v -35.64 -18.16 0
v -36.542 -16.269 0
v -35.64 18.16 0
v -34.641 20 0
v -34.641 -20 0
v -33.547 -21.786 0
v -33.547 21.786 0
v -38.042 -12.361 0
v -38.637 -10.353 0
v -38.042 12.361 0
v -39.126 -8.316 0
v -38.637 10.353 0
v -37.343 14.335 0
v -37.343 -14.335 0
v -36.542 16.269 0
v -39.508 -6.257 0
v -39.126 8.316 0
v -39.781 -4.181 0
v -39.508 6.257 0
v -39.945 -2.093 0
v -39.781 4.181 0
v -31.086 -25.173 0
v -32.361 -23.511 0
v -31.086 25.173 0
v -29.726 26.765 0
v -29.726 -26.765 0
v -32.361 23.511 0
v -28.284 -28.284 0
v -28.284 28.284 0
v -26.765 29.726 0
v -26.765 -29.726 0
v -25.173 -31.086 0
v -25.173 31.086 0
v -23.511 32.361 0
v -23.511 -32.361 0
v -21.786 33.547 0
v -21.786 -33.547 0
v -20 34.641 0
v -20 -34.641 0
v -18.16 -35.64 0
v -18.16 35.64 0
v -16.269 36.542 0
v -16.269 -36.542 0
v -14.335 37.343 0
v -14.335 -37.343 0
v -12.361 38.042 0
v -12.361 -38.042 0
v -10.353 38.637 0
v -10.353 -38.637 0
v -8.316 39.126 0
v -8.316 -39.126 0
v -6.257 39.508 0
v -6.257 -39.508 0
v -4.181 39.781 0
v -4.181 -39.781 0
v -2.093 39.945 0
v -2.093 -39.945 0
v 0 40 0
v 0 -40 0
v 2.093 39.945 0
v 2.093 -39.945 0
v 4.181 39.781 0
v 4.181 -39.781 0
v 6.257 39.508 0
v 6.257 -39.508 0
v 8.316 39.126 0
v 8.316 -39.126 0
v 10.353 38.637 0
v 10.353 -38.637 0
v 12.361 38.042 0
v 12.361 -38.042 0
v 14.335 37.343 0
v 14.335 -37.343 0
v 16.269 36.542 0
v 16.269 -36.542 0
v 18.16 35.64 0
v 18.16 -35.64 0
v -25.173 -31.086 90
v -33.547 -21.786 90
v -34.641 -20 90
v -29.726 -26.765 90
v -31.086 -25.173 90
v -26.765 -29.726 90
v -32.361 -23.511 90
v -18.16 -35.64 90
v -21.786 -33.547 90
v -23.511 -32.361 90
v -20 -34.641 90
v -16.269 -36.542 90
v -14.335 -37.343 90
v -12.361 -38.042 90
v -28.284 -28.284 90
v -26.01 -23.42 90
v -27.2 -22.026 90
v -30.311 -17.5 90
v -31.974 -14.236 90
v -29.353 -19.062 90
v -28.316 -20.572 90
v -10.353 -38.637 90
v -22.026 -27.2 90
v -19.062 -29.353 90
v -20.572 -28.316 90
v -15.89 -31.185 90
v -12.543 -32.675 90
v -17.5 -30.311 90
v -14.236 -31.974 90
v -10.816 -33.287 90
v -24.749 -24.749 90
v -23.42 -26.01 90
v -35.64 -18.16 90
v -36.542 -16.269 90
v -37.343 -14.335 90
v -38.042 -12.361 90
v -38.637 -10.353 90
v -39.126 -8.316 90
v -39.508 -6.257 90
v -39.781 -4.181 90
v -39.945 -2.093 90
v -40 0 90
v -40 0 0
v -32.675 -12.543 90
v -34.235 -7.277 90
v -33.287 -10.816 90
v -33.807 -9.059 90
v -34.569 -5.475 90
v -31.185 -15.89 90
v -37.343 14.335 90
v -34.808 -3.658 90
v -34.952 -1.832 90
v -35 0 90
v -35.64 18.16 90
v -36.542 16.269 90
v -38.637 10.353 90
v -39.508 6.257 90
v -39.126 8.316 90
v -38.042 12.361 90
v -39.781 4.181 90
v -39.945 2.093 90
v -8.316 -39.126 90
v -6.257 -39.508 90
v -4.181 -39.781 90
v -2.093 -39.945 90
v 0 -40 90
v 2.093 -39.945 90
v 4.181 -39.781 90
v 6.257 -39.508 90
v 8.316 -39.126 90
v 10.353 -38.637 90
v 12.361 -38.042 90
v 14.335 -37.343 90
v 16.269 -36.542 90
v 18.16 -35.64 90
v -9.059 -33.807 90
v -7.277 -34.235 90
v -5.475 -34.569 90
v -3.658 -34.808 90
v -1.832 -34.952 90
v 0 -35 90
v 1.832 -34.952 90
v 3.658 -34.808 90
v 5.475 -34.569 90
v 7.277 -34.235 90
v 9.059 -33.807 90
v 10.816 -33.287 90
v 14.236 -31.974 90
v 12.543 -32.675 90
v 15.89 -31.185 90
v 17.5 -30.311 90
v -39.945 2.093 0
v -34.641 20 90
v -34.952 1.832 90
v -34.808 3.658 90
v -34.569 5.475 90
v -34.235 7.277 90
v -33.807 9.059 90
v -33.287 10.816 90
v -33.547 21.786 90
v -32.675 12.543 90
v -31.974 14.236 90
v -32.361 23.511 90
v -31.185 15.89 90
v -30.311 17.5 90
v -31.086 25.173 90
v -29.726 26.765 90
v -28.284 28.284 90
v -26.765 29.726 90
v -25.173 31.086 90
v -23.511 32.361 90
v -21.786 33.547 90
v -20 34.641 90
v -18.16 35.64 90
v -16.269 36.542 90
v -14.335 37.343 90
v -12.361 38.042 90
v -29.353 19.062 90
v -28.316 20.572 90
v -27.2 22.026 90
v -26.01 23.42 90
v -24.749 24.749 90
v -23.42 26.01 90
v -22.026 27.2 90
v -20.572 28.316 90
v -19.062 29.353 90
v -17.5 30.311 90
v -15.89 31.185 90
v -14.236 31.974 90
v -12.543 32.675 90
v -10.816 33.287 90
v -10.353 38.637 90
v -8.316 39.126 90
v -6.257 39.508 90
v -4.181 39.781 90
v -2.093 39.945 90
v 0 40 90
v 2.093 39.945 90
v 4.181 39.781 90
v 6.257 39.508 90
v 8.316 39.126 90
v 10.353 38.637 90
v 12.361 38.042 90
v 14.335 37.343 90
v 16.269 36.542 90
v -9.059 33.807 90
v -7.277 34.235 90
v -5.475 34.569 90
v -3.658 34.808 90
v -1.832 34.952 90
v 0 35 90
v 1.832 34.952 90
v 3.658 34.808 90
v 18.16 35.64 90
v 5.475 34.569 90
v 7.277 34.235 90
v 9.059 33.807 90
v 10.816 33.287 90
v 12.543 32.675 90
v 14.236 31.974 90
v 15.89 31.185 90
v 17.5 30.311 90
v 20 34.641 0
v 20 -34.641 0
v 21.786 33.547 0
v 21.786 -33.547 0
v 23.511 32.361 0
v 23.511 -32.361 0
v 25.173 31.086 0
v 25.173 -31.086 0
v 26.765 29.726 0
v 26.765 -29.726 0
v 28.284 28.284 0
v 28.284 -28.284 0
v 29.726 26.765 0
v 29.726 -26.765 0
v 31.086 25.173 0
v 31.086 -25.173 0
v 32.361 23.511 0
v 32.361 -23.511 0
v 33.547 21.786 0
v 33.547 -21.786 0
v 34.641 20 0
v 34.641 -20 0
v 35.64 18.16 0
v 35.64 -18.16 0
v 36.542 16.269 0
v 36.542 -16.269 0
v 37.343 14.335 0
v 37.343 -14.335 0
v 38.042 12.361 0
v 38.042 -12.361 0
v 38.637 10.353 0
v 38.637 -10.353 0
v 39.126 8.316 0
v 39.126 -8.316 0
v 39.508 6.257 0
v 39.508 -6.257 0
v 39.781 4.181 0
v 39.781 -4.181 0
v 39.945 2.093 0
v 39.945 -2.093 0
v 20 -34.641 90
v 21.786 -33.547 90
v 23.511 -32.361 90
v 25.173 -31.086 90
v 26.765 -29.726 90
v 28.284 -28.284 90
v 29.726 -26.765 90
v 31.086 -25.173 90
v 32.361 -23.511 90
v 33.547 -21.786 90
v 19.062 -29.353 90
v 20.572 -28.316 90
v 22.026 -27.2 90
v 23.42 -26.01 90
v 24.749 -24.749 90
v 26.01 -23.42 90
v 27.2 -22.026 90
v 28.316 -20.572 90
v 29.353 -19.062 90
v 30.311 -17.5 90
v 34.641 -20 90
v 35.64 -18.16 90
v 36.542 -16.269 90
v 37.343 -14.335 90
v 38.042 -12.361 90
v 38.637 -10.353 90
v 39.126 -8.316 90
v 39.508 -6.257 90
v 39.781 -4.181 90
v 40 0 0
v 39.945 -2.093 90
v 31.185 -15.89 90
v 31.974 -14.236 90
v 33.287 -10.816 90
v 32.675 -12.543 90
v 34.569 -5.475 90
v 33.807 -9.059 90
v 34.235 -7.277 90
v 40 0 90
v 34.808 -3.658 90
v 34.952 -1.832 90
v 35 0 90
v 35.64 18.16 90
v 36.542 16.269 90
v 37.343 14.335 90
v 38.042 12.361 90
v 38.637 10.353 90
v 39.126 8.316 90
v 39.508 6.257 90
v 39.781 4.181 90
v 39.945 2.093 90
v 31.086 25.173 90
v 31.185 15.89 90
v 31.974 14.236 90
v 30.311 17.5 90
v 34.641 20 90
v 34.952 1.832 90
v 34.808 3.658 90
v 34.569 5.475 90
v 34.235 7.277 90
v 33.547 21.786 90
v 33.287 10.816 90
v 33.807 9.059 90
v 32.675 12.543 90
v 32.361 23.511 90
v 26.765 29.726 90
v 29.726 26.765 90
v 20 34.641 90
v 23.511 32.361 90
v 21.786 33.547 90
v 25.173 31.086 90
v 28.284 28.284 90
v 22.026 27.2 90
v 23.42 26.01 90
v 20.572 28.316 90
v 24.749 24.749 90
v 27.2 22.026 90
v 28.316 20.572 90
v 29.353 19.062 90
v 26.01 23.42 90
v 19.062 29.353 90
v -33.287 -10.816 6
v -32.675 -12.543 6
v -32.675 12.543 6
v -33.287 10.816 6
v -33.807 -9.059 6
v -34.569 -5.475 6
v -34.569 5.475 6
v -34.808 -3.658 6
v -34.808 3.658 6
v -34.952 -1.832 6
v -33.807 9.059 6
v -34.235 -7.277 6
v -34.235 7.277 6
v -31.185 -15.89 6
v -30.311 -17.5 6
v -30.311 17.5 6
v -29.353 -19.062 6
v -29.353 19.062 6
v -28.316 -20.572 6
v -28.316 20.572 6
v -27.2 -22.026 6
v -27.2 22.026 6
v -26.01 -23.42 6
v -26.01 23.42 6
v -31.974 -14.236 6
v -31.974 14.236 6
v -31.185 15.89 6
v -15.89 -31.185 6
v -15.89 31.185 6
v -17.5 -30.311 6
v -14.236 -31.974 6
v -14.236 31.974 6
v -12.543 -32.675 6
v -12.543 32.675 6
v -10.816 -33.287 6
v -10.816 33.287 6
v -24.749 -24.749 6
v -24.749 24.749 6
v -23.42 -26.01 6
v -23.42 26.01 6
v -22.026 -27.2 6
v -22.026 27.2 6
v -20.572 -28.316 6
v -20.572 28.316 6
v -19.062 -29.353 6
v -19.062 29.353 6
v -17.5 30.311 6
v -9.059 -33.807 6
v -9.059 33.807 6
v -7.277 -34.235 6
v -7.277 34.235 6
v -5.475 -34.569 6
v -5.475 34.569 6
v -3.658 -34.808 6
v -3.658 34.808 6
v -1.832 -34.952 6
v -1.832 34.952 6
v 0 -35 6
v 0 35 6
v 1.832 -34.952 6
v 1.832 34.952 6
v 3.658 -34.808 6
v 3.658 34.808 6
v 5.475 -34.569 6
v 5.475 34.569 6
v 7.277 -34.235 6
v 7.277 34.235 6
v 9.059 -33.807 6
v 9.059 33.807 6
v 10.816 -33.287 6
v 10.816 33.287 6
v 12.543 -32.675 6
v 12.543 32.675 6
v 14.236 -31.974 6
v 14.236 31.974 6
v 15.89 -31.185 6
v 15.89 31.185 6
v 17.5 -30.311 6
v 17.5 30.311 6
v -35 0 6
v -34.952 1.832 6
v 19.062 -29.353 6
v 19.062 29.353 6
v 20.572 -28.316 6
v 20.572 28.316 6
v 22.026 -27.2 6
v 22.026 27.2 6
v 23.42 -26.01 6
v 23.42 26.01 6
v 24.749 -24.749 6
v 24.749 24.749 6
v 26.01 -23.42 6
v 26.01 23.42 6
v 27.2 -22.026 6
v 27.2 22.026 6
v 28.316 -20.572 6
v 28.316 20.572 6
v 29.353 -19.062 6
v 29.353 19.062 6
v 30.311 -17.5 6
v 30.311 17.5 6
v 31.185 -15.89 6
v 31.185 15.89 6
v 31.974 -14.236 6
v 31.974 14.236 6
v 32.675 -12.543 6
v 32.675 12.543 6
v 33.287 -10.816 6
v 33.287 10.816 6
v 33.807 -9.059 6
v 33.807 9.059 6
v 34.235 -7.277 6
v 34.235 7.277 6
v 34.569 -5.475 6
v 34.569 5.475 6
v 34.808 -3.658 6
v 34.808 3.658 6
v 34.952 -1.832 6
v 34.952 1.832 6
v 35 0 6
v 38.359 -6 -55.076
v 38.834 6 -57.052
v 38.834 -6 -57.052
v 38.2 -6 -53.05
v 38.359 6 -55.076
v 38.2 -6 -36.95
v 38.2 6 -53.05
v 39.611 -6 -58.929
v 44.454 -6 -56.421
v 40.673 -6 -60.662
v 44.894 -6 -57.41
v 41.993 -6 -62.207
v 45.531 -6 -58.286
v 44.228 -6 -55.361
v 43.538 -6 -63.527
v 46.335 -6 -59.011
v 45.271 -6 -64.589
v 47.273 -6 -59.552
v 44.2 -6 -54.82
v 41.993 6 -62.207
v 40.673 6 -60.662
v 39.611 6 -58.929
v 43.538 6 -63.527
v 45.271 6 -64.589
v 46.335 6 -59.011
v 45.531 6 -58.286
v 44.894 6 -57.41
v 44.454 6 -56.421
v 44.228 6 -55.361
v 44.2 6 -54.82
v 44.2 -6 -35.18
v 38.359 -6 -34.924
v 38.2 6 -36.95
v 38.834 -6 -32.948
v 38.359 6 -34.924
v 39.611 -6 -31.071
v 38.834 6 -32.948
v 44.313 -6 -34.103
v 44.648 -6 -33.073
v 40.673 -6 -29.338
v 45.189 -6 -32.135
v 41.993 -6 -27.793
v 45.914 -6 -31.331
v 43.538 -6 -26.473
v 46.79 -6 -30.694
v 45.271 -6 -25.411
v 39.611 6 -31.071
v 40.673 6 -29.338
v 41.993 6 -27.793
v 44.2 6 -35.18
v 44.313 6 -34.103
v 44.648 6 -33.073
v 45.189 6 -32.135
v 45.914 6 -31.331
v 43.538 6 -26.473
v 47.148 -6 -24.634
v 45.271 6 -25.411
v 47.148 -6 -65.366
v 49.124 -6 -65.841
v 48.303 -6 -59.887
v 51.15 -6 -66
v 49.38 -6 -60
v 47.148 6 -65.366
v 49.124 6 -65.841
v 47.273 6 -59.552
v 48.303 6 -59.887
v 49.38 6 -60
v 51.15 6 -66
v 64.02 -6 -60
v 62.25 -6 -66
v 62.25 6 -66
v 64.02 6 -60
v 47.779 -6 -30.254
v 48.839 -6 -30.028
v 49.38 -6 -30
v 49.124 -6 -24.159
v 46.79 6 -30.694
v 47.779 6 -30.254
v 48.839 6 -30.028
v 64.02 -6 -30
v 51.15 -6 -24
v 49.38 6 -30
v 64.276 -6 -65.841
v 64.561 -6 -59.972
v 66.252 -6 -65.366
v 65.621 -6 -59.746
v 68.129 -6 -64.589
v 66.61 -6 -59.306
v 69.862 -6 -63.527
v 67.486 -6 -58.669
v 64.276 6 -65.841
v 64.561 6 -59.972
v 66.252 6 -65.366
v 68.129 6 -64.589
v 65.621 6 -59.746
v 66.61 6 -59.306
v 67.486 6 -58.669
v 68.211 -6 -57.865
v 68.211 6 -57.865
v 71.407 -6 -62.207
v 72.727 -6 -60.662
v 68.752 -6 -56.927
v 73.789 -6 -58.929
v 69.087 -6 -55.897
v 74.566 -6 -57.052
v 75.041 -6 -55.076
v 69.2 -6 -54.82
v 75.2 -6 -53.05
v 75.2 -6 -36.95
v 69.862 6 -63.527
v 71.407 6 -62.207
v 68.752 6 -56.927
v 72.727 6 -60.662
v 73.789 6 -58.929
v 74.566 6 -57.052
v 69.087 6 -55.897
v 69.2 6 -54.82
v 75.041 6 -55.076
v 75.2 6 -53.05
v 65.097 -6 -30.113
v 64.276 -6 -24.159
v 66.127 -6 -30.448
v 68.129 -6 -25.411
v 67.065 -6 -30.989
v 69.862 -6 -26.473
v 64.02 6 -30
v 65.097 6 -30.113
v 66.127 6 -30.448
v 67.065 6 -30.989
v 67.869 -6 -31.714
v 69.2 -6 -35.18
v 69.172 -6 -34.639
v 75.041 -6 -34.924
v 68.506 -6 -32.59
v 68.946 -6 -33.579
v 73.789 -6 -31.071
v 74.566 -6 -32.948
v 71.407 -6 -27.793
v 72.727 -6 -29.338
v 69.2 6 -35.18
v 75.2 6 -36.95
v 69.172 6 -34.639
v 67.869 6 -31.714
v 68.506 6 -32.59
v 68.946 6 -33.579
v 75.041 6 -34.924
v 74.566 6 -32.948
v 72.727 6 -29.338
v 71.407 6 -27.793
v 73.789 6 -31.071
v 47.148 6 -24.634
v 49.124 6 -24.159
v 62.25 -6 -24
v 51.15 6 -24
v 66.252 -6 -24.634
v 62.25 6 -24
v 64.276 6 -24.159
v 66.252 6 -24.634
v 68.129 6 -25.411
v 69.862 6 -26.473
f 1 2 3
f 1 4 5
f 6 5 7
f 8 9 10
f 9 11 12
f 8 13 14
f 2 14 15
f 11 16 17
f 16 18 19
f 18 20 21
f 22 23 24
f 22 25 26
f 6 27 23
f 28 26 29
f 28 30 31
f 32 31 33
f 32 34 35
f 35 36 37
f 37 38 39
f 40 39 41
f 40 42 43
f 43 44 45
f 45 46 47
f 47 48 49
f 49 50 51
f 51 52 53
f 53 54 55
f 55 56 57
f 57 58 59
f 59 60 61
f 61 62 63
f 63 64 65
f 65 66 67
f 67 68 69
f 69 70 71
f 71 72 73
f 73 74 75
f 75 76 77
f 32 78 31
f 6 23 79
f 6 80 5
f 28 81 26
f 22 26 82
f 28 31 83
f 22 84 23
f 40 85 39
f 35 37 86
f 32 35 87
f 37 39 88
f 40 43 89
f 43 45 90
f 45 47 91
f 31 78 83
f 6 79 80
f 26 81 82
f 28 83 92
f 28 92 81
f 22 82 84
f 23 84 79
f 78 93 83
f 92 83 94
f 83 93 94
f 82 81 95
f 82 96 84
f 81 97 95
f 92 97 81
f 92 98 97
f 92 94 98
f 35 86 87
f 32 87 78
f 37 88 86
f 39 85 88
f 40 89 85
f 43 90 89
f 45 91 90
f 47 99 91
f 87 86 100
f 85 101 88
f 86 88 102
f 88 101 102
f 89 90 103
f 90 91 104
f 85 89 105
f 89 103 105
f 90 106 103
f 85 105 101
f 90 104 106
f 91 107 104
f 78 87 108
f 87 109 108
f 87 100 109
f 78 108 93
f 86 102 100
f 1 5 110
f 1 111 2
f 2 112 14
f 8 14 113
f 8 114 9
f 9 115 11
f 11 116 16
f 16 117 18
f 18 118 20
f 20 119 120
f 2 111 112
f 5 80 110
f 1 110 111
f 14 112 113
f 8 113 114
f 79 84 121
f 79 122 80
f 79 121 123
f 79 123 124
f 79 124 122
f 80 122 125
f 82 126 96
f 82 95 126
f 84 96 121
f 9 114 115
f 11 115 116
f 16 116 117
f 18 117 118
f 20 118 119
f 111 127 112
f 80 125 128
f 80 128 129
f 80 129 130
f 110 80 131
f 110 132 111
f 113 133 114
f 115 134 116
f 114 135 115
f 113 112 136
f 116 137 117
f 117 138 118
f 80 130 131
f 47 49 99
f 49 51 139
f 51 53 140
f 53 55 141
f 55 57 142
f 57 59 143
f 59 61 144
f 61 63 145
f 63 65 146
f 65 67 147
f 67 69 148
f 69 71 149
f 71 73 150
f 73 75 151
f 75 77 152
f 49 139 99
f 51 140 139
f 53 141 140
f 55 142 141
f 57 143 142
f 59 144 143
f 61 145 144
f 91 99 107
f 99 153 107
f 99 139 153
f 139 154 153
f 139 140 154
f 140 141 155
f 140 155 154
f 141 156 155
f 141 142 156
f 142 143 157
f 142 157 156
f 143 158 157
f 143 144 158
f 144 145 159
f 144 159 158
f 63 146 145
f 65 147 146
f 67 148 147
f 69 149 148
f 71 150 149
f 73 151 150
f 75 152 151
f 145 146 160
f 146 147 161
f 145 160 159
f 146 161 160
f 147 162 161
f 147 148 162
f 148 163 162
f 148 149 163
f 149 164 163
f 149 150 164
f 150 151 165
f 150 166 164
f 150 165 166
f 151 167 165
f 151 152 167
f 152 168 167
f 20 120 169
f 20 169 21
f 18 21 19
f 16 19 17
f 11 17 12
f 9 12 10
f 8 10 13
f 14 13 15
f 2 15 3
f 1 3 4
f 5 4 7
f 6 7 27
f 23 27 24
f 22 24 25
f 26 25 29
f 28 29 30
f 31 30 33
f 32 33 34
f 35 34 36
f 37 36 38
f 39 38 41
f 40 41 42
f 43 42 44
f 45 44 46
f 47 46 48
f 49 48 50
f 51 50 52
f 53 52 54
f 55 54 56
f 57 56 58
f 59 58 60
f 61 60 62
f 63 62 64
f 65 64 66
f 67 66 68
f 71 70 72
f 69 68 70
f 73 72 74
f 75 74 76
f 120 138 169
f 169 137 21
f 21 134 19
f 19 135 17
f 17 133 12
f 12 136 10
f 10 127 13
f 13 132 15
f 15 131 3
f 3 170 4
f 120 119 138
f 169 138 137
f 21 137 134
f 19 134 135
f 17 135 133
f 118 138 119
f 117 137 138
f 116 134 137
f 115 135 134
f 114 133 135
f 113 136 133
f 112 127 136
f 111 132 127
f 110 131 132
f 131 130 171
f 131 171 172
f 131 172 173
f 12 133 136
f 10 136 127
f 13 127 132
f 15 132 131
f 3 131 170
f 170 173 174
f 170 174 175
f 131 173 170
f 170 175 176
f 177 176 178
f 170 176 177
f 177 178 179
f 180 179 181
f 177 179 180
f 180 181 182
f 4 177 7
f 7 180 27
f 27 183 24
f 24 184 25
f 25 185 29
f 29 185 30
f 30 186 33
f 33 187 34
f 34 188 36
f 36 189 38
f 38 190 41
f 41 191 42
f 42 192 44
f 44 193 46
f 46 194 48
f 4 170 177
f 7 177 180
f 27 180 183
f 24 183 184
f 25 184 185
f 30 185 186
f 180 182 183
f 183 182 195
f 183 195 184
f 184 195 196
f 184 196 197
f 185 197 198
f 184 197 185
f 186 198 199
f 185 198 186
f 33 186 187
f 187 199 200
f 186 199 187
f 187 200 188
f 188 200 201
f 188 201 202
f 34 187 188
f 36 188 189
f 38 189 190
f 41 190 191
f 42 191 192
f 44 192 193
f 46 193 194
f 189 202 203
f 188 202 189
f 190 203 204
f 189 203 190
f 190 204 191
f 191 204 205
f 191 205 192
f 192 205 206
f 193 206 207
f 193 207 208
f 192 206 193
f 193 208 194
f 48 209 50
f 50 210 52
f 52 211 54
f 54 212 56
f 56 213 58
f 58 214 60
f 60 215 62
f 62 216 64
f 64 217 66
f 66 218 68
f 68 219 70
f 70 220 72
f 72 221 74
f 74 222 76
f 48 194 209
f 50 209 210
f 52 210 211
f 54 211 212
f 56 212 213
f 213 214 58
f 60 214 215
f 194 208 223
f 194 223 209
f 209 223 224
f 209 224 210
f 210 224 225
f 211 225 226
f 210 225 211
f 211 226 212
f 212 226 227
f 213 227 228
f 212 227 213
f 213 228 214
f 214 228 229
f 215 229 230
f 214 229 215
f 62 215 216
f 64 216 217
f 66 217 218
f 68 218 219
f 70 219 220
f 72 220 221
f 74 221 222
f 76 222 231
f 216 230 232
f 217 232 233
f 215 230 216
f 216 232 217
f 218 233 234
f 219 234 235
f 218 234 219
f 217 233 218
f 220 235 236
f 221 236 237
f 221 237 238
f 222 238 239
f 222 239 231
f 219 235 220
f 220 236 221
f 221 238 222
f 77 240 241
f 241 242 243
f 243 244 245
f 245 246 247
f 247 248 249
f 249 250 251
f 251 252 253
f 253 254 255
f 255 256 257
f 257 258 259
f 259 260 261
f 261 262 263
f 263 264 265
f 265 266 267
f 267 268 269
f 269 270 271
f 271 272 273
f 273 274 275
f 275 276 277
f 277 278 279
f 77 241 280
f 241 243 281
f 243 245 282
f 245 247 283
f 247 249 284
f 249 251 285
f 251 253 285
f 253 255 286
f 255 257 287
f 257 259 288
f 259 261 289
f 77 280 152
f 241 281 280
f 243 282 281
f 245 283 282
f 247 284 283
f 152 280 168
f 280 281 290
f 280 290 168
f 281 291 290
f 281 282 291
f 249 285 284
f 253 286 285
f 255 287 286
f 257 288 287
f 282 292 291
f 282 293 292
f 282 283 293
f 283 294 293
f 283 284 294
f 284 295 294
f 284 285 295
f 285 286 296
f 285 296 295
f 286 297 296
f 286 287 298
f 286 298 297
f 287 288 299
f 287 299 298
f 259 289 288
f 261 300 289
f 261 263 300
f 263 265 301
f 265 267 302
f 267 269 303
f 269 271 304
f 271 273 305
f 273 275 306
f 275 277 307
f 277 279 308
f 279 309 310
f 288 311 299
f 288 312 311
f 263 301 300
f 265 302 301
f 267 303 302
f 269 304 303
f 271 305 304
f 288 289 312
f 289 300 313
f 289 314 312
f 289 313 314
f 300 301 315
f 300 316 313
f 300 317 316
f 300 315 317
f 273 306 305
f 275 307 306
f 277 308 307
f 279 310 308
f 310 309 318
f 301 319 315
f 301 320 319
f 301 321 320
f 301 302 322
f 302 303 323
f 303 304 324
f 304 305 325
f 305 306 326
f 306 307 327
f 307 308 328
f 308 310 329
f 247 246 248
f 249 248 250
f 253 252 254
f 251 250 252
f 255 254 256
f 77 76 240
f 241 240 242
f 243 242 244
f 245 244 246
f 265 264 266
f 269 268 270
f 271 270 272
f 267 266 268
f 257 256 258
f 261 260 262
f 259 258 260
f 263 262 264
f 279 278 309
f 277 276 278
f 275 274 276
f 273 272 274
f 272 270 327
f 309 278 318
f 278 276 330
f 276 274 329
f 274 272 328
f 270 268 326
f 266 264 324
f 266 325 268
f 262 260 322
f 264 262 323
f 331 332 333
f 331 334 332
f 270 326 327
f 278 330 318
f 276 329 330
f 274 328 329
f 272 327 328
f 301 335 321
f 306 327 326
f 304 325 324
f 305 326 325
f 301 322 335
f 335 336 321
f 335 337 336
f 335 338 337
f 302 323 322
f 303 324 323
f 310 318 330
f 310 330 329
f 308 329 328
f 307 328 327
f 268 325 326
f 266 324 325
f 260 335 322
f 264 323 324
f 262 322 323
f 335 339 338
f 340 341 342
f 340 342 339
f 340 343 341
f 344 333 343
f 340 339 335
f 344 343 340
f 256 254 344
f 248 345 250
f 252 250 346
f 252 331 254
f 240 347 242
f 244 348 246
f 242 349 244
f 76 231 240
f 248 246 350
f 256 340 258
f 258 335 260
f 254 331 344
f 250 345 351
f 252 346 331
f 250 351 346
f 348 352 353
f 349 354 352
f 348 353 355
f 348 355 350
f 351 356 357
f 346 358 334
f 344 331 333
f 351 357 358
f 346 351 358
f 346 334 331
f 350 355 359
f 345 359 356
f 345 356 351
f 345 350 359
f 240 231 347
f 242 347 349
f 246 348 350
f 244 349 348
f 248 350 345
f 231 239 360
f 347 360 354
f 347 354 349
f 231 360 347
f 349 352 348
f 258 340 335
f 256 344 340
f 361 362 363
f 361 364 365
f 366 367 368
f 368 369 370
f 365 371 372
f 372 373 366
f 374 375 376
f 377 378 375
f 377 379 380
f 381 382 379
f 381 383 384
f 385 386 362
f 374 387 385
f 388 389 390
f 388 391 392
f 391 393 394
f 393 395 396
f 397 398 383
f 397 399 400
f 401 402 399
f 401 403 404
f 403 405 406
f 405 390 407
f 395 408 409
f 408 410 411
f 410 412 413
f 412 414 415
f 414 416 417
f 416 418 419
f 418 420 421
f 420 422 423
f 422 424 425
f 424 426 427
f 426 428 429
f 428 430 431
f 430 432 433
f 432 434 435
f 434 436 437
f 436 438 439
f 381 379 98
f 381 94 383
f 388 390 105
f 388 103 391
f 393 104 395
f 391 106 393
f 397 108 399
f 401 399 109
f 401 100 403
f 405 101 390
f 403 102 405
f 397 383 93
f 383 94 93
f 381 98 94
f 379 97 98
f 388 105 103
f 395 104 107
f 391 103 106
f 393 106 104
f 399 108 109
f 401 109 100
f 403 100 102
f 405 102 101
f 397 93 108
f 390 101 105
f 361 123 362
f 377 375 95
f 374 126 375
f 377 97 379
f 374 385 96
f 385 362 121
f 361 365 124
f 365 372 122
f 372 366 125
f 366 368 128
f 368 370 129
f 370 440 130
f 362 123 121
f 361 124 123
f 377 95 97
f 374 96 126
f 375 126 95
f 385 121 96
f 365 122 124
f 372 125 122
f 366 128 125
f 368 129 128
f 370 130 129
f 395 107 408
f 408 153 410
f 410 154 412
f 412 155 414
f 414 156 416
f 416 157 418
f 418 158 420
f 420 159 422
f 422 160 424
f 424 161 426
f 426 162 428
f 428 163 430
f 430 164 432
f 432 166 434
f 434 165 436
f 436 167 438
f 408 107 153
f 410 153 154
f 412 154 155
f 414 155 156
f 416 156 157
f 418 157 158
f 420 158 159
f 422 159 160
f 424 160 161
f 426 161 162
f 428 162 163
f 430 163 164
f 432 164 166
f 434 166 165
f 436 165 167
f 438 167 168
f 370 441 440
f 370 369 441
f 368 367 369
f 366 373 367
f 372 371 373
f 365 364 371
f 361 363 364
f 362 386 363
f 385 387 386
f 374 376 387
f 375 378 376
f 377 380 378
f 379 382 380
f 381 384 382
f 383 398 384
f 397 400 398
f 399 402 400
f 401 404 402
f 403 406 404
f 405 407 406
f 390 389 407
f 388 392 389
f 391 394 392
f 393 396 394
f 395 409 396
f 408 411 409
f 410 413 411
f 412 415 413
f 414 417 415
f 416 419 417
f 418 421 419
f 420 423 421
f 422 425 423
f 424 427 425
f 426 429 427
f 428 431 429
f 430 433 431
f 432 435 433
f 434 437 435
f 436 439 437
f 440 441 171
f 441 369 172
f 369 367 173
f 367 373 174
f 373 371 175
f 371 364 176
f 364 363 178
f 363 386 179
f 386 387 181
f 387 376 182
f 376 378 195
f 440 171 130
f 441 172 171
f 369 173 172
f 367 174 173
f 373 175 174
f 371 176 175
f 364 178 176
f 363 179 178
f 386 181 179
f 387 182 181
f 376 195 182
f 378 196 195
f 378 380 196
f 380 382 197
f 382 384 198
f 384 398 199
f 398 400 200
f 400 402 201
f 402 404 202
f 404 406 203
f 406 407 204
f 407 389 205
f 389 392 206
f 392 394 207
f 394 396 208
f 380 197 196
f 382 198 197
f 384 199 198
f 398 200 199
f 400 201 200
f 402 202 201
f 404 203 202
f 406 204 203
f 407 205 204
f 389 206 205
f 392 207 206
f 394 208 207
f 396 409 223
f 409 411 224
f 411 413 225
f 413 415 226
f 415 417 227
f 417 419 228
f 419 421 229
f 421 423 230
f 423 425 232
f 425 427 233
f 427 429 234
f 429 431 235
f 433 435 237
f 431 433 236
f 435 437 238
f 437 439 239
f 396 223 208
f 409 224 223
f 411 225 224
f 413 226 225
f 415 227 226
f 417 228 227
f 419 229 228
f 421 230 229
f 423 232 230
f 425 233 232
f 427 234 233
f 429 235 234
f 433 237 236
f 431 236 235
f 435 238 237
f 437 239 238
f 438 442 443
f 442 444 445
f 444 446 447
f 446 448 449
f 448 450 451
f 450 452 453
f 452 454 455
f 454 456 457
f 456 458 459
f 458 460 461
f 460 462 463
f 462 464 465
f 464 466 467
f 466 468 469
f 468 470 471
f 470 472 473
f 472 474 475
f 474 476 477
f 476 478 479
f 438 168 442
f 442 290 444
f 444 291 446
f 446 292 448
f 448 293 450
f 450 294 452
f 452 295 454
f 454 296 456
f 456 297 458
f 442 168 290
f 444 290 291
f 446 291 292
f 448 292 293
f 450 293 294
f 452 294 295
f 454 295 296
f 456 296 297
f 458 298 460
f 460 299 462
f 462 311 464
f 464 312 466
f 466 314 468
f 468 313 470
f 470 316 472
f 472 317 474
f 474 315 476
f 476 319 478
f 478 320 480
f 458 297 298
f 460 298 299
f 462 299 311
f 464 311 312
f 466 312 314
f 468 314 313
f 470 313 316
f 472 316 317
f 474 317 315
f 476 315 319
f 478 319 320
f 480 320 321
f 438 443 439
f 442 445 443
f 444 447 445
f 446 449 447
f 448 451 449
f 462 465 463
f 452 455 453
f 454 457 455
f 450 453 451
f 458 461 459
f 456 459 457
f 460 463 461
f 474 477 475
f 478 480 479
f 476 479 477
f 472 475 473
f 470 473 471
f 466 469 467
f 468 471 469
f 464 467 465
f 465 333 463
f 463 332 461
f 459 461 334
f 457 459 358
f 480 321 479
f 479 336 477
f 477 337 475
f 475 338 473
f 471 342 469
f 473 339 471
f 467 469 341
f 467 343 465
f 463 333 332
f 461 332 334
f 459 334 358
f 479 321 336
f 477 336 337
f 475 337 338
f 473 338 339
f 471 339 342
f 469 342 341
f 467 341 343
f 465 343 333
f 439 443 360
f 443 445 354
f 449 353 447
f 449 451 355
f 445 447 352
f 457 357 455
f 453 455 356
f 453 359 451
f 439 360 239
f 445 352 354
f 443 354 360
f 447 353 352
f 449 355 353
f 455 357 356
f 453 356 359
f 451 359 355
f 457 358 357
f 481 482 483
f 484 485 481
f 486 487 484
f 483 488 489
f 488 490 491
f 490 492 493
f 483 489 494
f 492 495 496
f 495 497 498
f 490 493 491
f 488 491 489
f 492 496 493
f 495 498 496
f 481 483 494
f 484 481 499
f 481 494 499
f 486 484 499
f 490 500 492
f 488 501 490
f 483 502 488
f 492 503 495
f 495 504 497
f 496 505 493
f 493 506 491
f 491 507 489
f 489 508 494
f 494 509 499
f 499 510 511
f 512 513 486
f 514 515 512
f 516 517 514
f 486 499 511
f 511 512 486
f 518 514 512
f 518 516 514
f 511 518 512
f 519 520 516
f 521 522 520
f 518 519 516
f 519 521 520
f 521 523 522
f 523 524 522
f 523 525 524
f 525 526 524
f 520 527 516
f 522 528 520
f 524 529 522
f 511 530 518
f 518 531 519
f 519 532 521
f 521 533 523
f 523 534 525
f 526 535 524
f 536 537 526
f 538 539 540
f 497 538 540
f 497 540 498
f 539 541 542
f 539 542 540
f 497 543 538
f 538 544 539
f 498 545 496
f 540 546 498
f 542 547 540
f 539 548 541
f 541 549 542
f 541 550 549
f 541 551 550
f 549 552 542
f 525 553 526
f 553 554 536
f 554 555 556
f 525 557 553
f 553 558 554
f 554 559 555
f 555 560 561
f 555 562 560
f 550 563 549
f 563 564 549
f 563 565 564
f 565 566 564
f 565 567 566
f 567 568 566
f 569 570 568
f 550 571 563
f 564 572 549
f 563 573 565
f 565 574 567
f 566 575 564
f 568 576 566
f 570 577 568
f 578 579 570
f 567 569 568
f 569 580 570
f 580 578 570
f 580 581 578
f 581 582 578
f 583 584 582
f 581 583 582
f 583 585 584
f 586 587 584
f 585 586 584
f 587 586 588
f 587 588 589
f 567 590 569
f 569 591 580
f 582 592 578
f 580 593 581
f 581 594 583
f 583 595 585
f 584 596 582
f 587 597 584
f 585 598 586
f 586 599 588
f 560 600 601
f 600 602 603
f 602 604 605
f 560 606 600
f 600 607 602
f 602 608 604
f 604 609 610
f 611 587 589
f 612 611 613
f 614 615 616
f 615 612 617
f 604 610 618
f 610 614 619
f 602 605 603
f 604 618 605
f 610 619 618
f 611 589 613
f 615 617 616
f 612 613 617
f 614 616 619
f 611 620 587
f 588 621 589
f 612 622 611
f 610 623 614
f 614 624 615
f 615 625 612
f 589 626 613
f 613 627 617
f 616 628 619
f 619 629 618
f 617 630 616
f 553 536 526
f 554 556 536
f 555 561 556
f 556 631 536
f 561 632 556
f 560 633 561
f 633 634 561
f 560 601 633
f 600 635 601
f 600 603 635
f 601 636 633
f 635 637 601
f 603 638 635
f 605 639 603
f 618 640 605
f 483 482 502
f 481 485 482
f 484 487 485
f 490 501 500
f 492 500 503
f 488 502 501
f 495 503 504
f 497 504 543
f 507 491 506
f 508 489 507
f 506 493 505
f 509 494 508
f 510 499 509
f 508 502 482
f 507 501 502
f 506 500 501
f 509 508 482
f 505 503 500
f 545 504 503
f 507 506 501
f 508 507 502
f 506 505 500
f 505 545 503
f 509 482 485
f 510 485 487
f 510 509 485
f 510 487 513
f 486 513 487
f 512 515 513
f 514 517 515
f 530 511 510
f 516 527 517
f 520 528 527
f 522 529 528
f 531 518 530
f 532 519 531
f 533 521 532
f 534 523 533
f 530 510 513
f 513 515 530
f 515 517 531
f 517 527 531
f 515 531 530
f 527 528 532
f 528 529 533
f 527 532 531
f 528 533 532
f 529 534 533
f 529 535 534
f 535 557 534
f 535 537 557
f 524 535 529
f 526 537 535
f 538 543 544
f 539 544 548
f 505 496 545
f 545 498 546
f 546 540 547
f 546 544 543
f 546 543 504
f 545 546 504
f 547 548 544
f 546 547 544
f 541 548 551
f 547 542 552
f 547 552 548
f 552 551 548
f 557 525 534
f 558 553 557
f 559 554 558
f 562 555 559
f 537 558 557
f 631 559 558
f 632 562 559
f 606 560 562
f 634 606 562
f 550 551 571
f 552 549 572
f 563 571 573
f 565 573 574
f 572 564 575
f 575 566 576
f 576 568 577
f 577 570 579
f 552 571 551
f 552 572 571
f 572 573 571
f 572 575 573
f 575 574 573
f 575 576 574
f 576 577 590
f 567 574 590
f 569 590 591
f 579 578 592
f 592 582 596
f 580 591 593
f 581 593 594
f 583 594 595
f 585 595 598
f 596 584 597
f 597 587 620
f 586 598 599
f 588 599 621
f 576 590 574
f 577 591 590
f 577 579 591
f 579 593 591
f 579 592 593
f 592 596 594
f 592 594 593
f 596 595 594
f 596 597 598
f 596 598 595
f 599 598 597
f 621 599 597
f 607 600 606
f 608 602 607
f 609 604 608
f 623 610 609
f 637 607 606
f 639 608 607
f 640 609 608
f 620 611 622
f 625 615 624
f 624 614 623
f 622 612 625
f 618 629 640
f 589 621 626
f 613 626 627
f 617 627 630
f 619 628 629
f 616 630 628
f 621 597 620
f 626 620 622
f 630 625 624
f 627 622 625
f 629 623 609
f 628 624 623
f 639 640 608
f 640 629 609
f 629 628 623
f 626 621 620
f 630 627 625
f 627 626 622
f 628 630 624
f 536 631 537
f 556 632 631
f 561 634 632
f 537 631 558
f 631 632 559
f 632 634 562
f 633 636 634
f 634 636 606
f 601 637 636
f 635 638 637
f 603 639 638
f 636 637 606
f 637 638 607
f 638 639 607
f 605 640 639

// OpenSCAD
// Mug parameters
body_od = 80;
body_id = 70;
body_h = 90;
wall_t = (body_od - body_id) / 2; // 5mm
bottom_t = 6;

// Handle parameters
handle_hole_h = 30;    // inner opening height
handle_hole_w = 25;    // inner opening width (radial depth from body)
handle_bar_t = 6;      // thickness of the handle cross-section
handle_bar_w = 12;     // width (tangential / Z-perpendicular) of handle bar

// Derived handle dimensions
// The handle attaches on +X side.
// Inner opening starts at body outer radius and extends outward by handle_hole_w.
// Total outer reach = body_od/2 + handle_hole_w + handle_bar_t
handle_outer_r = body_od/2 + handle_hole_w + handle_bar_t;
handle_inner_r_x = body_od/2;  // where inner hole starts (at body surface)

// Handle vertical center at mug mid-height
handle_center_z = body_h / 2;

module mug_body() {
    difference() {
        // Outer cylinder
        cylinder(d = body_od, h = body_h, $fn = 120);
        // Inner cavity
        translate([0, 0, bottom_t])
            cylinder(d = body_id, h = body_h - bottom_t + 1, $fn = 120);
    }
}

module handle() {
    // Build handle as a D-shape on the +X side.
    // The D is: flat side against the mug body, curved side going outward.
    // We'll construct it with hull / minkowski or direct geometry.
    // Approach: create a torus-like shape by sweeping a cross-section
    // along a path that goes: up from bottom attach point, around a
    // semicircle at top, and back down — but simpler: use a rounded
    // rectangular ring and subtract the inner hole.

    // Handle total outer envelope:
    total_h = handle_hole_h + 2 * handle_bar_t;
    total_w = handle_hole_w + handle_bar_t; // from body surface outward

    // We'll create the handle as a 2D cross-section extruded and shaped.
    // Use a simpler approach: a filleted rectangular loop on XZ plane.

    // Spine of the handle (centerline of the bar cross-section):
    // It's a rounded rectangle path on the XZ plane.
    // From body surface: the spine is at handle_bar_t/2 offset inward/outward.

    spine_inner_x = body_od/2 + handle_bar_t/2;
    spine_outer_x = body_od/2 + handle_hole_w + handle_bar_t/2;
    spine_bottom_z = handle_center_z - handle_hole_h/2 - handle_bar_t/2;
    spine_top_z = handle_center_z + handle_hole_h/2 + handle_bar_t/2;

    // Corner radius for the outer corners of the handle path
    corner_r = handle_bar_t/2 + 2;

    // Cross section: an ellipse/circle of handle_bar_t x handle_bar_w
    // We'll use hull of spheres along the spine, or linear_extrude a 2D shape.

    // Simple approach: create solid block, subtract inner hole.
    // Solid handle block (on +X side)
    translate([body_od/2 - 1, -handle_bar_w/2, handle_center_z - (handle_hole_h/2 + handle_bar_t)])
    {
        // Outer solid rounded shape
        difference() {
            // Outer block with rounded outer corners
            minkowski() {
                cube([handle_hole_w + handle_bar_t - corner_r + 1,
                      handle_bar_w - 2*2,
                      handle_hole_h + 2*handle_bar_t - 2*corner_r]);
                translate([0, 0, corner_r])
                    resize([corner_r*2, 2*2, corner_r*2])
                        sphere(r = corner_r, $fn = 40);
            }
            // Inner cutout (the hole for fingers)
            translate([handle_bar_t - 0.5, -1, handle_bar_t])
                cube([handle_hole_w + 2, handle_bar_w + 2, handle_hole_h]);
        }
    }
}

module handle_v2() {
    // More robust approach using 2D profile rotated/extruded
    // Create handle cross-section as a ring on the XZ plane, then
    // linear_extrude in Y with handle_bar_w.

    // 2D outline of the handle (XZ plane cross-section)
    // Outer rounded rect and inner rounded rect
    or_w = handle_hole_w + 2 * handle_bar_t;  // total radial size
    or_h = handle_hole_h + 2 * handle_bar_t;  // total height size
    ir_w = handle_hole_w;
    ir_h = handle_hole_h;
    cr_outer = min(or_w, or_h) * 0.35;  // outer corner radius
    cr_inner = cr_outer * 0.4;

    cx = body_od/2 - handle_bar_t * 0.3;  // X start (overlap with body for union)
    cz = handle_center_z;  // center Z

    translate([0, -handle_bar_w/2, 0])
    rotate([-90, 0, 0])
    linear_extrude(height = handle_bar_w, center = false)
    {
        difference() {
            // Outer shape
            translate([cx, -(or_h/2) + cz])
                offset(r = cr_outer, $fn = 40)
                    offset(delta = -cr_outer)
                        square([or_w, or_h]);
            // Inner cutout
            translate([cx + handle_bar_t, -(ir_h/2) + cz])
                offset(r = cr_inner, $fn = 30)
                    offset(delta = -cr_inner)
                        square([ir_w, ir_h]);
            // Cut the flat side (remove the part that would be inside the body)
            translate([cx - or_w, cz - or_h])
                square([or_w, or_h * 2]);
        }
    }
}

// Final assembly
union() {
    mug_body();
    handle_v2();
}
